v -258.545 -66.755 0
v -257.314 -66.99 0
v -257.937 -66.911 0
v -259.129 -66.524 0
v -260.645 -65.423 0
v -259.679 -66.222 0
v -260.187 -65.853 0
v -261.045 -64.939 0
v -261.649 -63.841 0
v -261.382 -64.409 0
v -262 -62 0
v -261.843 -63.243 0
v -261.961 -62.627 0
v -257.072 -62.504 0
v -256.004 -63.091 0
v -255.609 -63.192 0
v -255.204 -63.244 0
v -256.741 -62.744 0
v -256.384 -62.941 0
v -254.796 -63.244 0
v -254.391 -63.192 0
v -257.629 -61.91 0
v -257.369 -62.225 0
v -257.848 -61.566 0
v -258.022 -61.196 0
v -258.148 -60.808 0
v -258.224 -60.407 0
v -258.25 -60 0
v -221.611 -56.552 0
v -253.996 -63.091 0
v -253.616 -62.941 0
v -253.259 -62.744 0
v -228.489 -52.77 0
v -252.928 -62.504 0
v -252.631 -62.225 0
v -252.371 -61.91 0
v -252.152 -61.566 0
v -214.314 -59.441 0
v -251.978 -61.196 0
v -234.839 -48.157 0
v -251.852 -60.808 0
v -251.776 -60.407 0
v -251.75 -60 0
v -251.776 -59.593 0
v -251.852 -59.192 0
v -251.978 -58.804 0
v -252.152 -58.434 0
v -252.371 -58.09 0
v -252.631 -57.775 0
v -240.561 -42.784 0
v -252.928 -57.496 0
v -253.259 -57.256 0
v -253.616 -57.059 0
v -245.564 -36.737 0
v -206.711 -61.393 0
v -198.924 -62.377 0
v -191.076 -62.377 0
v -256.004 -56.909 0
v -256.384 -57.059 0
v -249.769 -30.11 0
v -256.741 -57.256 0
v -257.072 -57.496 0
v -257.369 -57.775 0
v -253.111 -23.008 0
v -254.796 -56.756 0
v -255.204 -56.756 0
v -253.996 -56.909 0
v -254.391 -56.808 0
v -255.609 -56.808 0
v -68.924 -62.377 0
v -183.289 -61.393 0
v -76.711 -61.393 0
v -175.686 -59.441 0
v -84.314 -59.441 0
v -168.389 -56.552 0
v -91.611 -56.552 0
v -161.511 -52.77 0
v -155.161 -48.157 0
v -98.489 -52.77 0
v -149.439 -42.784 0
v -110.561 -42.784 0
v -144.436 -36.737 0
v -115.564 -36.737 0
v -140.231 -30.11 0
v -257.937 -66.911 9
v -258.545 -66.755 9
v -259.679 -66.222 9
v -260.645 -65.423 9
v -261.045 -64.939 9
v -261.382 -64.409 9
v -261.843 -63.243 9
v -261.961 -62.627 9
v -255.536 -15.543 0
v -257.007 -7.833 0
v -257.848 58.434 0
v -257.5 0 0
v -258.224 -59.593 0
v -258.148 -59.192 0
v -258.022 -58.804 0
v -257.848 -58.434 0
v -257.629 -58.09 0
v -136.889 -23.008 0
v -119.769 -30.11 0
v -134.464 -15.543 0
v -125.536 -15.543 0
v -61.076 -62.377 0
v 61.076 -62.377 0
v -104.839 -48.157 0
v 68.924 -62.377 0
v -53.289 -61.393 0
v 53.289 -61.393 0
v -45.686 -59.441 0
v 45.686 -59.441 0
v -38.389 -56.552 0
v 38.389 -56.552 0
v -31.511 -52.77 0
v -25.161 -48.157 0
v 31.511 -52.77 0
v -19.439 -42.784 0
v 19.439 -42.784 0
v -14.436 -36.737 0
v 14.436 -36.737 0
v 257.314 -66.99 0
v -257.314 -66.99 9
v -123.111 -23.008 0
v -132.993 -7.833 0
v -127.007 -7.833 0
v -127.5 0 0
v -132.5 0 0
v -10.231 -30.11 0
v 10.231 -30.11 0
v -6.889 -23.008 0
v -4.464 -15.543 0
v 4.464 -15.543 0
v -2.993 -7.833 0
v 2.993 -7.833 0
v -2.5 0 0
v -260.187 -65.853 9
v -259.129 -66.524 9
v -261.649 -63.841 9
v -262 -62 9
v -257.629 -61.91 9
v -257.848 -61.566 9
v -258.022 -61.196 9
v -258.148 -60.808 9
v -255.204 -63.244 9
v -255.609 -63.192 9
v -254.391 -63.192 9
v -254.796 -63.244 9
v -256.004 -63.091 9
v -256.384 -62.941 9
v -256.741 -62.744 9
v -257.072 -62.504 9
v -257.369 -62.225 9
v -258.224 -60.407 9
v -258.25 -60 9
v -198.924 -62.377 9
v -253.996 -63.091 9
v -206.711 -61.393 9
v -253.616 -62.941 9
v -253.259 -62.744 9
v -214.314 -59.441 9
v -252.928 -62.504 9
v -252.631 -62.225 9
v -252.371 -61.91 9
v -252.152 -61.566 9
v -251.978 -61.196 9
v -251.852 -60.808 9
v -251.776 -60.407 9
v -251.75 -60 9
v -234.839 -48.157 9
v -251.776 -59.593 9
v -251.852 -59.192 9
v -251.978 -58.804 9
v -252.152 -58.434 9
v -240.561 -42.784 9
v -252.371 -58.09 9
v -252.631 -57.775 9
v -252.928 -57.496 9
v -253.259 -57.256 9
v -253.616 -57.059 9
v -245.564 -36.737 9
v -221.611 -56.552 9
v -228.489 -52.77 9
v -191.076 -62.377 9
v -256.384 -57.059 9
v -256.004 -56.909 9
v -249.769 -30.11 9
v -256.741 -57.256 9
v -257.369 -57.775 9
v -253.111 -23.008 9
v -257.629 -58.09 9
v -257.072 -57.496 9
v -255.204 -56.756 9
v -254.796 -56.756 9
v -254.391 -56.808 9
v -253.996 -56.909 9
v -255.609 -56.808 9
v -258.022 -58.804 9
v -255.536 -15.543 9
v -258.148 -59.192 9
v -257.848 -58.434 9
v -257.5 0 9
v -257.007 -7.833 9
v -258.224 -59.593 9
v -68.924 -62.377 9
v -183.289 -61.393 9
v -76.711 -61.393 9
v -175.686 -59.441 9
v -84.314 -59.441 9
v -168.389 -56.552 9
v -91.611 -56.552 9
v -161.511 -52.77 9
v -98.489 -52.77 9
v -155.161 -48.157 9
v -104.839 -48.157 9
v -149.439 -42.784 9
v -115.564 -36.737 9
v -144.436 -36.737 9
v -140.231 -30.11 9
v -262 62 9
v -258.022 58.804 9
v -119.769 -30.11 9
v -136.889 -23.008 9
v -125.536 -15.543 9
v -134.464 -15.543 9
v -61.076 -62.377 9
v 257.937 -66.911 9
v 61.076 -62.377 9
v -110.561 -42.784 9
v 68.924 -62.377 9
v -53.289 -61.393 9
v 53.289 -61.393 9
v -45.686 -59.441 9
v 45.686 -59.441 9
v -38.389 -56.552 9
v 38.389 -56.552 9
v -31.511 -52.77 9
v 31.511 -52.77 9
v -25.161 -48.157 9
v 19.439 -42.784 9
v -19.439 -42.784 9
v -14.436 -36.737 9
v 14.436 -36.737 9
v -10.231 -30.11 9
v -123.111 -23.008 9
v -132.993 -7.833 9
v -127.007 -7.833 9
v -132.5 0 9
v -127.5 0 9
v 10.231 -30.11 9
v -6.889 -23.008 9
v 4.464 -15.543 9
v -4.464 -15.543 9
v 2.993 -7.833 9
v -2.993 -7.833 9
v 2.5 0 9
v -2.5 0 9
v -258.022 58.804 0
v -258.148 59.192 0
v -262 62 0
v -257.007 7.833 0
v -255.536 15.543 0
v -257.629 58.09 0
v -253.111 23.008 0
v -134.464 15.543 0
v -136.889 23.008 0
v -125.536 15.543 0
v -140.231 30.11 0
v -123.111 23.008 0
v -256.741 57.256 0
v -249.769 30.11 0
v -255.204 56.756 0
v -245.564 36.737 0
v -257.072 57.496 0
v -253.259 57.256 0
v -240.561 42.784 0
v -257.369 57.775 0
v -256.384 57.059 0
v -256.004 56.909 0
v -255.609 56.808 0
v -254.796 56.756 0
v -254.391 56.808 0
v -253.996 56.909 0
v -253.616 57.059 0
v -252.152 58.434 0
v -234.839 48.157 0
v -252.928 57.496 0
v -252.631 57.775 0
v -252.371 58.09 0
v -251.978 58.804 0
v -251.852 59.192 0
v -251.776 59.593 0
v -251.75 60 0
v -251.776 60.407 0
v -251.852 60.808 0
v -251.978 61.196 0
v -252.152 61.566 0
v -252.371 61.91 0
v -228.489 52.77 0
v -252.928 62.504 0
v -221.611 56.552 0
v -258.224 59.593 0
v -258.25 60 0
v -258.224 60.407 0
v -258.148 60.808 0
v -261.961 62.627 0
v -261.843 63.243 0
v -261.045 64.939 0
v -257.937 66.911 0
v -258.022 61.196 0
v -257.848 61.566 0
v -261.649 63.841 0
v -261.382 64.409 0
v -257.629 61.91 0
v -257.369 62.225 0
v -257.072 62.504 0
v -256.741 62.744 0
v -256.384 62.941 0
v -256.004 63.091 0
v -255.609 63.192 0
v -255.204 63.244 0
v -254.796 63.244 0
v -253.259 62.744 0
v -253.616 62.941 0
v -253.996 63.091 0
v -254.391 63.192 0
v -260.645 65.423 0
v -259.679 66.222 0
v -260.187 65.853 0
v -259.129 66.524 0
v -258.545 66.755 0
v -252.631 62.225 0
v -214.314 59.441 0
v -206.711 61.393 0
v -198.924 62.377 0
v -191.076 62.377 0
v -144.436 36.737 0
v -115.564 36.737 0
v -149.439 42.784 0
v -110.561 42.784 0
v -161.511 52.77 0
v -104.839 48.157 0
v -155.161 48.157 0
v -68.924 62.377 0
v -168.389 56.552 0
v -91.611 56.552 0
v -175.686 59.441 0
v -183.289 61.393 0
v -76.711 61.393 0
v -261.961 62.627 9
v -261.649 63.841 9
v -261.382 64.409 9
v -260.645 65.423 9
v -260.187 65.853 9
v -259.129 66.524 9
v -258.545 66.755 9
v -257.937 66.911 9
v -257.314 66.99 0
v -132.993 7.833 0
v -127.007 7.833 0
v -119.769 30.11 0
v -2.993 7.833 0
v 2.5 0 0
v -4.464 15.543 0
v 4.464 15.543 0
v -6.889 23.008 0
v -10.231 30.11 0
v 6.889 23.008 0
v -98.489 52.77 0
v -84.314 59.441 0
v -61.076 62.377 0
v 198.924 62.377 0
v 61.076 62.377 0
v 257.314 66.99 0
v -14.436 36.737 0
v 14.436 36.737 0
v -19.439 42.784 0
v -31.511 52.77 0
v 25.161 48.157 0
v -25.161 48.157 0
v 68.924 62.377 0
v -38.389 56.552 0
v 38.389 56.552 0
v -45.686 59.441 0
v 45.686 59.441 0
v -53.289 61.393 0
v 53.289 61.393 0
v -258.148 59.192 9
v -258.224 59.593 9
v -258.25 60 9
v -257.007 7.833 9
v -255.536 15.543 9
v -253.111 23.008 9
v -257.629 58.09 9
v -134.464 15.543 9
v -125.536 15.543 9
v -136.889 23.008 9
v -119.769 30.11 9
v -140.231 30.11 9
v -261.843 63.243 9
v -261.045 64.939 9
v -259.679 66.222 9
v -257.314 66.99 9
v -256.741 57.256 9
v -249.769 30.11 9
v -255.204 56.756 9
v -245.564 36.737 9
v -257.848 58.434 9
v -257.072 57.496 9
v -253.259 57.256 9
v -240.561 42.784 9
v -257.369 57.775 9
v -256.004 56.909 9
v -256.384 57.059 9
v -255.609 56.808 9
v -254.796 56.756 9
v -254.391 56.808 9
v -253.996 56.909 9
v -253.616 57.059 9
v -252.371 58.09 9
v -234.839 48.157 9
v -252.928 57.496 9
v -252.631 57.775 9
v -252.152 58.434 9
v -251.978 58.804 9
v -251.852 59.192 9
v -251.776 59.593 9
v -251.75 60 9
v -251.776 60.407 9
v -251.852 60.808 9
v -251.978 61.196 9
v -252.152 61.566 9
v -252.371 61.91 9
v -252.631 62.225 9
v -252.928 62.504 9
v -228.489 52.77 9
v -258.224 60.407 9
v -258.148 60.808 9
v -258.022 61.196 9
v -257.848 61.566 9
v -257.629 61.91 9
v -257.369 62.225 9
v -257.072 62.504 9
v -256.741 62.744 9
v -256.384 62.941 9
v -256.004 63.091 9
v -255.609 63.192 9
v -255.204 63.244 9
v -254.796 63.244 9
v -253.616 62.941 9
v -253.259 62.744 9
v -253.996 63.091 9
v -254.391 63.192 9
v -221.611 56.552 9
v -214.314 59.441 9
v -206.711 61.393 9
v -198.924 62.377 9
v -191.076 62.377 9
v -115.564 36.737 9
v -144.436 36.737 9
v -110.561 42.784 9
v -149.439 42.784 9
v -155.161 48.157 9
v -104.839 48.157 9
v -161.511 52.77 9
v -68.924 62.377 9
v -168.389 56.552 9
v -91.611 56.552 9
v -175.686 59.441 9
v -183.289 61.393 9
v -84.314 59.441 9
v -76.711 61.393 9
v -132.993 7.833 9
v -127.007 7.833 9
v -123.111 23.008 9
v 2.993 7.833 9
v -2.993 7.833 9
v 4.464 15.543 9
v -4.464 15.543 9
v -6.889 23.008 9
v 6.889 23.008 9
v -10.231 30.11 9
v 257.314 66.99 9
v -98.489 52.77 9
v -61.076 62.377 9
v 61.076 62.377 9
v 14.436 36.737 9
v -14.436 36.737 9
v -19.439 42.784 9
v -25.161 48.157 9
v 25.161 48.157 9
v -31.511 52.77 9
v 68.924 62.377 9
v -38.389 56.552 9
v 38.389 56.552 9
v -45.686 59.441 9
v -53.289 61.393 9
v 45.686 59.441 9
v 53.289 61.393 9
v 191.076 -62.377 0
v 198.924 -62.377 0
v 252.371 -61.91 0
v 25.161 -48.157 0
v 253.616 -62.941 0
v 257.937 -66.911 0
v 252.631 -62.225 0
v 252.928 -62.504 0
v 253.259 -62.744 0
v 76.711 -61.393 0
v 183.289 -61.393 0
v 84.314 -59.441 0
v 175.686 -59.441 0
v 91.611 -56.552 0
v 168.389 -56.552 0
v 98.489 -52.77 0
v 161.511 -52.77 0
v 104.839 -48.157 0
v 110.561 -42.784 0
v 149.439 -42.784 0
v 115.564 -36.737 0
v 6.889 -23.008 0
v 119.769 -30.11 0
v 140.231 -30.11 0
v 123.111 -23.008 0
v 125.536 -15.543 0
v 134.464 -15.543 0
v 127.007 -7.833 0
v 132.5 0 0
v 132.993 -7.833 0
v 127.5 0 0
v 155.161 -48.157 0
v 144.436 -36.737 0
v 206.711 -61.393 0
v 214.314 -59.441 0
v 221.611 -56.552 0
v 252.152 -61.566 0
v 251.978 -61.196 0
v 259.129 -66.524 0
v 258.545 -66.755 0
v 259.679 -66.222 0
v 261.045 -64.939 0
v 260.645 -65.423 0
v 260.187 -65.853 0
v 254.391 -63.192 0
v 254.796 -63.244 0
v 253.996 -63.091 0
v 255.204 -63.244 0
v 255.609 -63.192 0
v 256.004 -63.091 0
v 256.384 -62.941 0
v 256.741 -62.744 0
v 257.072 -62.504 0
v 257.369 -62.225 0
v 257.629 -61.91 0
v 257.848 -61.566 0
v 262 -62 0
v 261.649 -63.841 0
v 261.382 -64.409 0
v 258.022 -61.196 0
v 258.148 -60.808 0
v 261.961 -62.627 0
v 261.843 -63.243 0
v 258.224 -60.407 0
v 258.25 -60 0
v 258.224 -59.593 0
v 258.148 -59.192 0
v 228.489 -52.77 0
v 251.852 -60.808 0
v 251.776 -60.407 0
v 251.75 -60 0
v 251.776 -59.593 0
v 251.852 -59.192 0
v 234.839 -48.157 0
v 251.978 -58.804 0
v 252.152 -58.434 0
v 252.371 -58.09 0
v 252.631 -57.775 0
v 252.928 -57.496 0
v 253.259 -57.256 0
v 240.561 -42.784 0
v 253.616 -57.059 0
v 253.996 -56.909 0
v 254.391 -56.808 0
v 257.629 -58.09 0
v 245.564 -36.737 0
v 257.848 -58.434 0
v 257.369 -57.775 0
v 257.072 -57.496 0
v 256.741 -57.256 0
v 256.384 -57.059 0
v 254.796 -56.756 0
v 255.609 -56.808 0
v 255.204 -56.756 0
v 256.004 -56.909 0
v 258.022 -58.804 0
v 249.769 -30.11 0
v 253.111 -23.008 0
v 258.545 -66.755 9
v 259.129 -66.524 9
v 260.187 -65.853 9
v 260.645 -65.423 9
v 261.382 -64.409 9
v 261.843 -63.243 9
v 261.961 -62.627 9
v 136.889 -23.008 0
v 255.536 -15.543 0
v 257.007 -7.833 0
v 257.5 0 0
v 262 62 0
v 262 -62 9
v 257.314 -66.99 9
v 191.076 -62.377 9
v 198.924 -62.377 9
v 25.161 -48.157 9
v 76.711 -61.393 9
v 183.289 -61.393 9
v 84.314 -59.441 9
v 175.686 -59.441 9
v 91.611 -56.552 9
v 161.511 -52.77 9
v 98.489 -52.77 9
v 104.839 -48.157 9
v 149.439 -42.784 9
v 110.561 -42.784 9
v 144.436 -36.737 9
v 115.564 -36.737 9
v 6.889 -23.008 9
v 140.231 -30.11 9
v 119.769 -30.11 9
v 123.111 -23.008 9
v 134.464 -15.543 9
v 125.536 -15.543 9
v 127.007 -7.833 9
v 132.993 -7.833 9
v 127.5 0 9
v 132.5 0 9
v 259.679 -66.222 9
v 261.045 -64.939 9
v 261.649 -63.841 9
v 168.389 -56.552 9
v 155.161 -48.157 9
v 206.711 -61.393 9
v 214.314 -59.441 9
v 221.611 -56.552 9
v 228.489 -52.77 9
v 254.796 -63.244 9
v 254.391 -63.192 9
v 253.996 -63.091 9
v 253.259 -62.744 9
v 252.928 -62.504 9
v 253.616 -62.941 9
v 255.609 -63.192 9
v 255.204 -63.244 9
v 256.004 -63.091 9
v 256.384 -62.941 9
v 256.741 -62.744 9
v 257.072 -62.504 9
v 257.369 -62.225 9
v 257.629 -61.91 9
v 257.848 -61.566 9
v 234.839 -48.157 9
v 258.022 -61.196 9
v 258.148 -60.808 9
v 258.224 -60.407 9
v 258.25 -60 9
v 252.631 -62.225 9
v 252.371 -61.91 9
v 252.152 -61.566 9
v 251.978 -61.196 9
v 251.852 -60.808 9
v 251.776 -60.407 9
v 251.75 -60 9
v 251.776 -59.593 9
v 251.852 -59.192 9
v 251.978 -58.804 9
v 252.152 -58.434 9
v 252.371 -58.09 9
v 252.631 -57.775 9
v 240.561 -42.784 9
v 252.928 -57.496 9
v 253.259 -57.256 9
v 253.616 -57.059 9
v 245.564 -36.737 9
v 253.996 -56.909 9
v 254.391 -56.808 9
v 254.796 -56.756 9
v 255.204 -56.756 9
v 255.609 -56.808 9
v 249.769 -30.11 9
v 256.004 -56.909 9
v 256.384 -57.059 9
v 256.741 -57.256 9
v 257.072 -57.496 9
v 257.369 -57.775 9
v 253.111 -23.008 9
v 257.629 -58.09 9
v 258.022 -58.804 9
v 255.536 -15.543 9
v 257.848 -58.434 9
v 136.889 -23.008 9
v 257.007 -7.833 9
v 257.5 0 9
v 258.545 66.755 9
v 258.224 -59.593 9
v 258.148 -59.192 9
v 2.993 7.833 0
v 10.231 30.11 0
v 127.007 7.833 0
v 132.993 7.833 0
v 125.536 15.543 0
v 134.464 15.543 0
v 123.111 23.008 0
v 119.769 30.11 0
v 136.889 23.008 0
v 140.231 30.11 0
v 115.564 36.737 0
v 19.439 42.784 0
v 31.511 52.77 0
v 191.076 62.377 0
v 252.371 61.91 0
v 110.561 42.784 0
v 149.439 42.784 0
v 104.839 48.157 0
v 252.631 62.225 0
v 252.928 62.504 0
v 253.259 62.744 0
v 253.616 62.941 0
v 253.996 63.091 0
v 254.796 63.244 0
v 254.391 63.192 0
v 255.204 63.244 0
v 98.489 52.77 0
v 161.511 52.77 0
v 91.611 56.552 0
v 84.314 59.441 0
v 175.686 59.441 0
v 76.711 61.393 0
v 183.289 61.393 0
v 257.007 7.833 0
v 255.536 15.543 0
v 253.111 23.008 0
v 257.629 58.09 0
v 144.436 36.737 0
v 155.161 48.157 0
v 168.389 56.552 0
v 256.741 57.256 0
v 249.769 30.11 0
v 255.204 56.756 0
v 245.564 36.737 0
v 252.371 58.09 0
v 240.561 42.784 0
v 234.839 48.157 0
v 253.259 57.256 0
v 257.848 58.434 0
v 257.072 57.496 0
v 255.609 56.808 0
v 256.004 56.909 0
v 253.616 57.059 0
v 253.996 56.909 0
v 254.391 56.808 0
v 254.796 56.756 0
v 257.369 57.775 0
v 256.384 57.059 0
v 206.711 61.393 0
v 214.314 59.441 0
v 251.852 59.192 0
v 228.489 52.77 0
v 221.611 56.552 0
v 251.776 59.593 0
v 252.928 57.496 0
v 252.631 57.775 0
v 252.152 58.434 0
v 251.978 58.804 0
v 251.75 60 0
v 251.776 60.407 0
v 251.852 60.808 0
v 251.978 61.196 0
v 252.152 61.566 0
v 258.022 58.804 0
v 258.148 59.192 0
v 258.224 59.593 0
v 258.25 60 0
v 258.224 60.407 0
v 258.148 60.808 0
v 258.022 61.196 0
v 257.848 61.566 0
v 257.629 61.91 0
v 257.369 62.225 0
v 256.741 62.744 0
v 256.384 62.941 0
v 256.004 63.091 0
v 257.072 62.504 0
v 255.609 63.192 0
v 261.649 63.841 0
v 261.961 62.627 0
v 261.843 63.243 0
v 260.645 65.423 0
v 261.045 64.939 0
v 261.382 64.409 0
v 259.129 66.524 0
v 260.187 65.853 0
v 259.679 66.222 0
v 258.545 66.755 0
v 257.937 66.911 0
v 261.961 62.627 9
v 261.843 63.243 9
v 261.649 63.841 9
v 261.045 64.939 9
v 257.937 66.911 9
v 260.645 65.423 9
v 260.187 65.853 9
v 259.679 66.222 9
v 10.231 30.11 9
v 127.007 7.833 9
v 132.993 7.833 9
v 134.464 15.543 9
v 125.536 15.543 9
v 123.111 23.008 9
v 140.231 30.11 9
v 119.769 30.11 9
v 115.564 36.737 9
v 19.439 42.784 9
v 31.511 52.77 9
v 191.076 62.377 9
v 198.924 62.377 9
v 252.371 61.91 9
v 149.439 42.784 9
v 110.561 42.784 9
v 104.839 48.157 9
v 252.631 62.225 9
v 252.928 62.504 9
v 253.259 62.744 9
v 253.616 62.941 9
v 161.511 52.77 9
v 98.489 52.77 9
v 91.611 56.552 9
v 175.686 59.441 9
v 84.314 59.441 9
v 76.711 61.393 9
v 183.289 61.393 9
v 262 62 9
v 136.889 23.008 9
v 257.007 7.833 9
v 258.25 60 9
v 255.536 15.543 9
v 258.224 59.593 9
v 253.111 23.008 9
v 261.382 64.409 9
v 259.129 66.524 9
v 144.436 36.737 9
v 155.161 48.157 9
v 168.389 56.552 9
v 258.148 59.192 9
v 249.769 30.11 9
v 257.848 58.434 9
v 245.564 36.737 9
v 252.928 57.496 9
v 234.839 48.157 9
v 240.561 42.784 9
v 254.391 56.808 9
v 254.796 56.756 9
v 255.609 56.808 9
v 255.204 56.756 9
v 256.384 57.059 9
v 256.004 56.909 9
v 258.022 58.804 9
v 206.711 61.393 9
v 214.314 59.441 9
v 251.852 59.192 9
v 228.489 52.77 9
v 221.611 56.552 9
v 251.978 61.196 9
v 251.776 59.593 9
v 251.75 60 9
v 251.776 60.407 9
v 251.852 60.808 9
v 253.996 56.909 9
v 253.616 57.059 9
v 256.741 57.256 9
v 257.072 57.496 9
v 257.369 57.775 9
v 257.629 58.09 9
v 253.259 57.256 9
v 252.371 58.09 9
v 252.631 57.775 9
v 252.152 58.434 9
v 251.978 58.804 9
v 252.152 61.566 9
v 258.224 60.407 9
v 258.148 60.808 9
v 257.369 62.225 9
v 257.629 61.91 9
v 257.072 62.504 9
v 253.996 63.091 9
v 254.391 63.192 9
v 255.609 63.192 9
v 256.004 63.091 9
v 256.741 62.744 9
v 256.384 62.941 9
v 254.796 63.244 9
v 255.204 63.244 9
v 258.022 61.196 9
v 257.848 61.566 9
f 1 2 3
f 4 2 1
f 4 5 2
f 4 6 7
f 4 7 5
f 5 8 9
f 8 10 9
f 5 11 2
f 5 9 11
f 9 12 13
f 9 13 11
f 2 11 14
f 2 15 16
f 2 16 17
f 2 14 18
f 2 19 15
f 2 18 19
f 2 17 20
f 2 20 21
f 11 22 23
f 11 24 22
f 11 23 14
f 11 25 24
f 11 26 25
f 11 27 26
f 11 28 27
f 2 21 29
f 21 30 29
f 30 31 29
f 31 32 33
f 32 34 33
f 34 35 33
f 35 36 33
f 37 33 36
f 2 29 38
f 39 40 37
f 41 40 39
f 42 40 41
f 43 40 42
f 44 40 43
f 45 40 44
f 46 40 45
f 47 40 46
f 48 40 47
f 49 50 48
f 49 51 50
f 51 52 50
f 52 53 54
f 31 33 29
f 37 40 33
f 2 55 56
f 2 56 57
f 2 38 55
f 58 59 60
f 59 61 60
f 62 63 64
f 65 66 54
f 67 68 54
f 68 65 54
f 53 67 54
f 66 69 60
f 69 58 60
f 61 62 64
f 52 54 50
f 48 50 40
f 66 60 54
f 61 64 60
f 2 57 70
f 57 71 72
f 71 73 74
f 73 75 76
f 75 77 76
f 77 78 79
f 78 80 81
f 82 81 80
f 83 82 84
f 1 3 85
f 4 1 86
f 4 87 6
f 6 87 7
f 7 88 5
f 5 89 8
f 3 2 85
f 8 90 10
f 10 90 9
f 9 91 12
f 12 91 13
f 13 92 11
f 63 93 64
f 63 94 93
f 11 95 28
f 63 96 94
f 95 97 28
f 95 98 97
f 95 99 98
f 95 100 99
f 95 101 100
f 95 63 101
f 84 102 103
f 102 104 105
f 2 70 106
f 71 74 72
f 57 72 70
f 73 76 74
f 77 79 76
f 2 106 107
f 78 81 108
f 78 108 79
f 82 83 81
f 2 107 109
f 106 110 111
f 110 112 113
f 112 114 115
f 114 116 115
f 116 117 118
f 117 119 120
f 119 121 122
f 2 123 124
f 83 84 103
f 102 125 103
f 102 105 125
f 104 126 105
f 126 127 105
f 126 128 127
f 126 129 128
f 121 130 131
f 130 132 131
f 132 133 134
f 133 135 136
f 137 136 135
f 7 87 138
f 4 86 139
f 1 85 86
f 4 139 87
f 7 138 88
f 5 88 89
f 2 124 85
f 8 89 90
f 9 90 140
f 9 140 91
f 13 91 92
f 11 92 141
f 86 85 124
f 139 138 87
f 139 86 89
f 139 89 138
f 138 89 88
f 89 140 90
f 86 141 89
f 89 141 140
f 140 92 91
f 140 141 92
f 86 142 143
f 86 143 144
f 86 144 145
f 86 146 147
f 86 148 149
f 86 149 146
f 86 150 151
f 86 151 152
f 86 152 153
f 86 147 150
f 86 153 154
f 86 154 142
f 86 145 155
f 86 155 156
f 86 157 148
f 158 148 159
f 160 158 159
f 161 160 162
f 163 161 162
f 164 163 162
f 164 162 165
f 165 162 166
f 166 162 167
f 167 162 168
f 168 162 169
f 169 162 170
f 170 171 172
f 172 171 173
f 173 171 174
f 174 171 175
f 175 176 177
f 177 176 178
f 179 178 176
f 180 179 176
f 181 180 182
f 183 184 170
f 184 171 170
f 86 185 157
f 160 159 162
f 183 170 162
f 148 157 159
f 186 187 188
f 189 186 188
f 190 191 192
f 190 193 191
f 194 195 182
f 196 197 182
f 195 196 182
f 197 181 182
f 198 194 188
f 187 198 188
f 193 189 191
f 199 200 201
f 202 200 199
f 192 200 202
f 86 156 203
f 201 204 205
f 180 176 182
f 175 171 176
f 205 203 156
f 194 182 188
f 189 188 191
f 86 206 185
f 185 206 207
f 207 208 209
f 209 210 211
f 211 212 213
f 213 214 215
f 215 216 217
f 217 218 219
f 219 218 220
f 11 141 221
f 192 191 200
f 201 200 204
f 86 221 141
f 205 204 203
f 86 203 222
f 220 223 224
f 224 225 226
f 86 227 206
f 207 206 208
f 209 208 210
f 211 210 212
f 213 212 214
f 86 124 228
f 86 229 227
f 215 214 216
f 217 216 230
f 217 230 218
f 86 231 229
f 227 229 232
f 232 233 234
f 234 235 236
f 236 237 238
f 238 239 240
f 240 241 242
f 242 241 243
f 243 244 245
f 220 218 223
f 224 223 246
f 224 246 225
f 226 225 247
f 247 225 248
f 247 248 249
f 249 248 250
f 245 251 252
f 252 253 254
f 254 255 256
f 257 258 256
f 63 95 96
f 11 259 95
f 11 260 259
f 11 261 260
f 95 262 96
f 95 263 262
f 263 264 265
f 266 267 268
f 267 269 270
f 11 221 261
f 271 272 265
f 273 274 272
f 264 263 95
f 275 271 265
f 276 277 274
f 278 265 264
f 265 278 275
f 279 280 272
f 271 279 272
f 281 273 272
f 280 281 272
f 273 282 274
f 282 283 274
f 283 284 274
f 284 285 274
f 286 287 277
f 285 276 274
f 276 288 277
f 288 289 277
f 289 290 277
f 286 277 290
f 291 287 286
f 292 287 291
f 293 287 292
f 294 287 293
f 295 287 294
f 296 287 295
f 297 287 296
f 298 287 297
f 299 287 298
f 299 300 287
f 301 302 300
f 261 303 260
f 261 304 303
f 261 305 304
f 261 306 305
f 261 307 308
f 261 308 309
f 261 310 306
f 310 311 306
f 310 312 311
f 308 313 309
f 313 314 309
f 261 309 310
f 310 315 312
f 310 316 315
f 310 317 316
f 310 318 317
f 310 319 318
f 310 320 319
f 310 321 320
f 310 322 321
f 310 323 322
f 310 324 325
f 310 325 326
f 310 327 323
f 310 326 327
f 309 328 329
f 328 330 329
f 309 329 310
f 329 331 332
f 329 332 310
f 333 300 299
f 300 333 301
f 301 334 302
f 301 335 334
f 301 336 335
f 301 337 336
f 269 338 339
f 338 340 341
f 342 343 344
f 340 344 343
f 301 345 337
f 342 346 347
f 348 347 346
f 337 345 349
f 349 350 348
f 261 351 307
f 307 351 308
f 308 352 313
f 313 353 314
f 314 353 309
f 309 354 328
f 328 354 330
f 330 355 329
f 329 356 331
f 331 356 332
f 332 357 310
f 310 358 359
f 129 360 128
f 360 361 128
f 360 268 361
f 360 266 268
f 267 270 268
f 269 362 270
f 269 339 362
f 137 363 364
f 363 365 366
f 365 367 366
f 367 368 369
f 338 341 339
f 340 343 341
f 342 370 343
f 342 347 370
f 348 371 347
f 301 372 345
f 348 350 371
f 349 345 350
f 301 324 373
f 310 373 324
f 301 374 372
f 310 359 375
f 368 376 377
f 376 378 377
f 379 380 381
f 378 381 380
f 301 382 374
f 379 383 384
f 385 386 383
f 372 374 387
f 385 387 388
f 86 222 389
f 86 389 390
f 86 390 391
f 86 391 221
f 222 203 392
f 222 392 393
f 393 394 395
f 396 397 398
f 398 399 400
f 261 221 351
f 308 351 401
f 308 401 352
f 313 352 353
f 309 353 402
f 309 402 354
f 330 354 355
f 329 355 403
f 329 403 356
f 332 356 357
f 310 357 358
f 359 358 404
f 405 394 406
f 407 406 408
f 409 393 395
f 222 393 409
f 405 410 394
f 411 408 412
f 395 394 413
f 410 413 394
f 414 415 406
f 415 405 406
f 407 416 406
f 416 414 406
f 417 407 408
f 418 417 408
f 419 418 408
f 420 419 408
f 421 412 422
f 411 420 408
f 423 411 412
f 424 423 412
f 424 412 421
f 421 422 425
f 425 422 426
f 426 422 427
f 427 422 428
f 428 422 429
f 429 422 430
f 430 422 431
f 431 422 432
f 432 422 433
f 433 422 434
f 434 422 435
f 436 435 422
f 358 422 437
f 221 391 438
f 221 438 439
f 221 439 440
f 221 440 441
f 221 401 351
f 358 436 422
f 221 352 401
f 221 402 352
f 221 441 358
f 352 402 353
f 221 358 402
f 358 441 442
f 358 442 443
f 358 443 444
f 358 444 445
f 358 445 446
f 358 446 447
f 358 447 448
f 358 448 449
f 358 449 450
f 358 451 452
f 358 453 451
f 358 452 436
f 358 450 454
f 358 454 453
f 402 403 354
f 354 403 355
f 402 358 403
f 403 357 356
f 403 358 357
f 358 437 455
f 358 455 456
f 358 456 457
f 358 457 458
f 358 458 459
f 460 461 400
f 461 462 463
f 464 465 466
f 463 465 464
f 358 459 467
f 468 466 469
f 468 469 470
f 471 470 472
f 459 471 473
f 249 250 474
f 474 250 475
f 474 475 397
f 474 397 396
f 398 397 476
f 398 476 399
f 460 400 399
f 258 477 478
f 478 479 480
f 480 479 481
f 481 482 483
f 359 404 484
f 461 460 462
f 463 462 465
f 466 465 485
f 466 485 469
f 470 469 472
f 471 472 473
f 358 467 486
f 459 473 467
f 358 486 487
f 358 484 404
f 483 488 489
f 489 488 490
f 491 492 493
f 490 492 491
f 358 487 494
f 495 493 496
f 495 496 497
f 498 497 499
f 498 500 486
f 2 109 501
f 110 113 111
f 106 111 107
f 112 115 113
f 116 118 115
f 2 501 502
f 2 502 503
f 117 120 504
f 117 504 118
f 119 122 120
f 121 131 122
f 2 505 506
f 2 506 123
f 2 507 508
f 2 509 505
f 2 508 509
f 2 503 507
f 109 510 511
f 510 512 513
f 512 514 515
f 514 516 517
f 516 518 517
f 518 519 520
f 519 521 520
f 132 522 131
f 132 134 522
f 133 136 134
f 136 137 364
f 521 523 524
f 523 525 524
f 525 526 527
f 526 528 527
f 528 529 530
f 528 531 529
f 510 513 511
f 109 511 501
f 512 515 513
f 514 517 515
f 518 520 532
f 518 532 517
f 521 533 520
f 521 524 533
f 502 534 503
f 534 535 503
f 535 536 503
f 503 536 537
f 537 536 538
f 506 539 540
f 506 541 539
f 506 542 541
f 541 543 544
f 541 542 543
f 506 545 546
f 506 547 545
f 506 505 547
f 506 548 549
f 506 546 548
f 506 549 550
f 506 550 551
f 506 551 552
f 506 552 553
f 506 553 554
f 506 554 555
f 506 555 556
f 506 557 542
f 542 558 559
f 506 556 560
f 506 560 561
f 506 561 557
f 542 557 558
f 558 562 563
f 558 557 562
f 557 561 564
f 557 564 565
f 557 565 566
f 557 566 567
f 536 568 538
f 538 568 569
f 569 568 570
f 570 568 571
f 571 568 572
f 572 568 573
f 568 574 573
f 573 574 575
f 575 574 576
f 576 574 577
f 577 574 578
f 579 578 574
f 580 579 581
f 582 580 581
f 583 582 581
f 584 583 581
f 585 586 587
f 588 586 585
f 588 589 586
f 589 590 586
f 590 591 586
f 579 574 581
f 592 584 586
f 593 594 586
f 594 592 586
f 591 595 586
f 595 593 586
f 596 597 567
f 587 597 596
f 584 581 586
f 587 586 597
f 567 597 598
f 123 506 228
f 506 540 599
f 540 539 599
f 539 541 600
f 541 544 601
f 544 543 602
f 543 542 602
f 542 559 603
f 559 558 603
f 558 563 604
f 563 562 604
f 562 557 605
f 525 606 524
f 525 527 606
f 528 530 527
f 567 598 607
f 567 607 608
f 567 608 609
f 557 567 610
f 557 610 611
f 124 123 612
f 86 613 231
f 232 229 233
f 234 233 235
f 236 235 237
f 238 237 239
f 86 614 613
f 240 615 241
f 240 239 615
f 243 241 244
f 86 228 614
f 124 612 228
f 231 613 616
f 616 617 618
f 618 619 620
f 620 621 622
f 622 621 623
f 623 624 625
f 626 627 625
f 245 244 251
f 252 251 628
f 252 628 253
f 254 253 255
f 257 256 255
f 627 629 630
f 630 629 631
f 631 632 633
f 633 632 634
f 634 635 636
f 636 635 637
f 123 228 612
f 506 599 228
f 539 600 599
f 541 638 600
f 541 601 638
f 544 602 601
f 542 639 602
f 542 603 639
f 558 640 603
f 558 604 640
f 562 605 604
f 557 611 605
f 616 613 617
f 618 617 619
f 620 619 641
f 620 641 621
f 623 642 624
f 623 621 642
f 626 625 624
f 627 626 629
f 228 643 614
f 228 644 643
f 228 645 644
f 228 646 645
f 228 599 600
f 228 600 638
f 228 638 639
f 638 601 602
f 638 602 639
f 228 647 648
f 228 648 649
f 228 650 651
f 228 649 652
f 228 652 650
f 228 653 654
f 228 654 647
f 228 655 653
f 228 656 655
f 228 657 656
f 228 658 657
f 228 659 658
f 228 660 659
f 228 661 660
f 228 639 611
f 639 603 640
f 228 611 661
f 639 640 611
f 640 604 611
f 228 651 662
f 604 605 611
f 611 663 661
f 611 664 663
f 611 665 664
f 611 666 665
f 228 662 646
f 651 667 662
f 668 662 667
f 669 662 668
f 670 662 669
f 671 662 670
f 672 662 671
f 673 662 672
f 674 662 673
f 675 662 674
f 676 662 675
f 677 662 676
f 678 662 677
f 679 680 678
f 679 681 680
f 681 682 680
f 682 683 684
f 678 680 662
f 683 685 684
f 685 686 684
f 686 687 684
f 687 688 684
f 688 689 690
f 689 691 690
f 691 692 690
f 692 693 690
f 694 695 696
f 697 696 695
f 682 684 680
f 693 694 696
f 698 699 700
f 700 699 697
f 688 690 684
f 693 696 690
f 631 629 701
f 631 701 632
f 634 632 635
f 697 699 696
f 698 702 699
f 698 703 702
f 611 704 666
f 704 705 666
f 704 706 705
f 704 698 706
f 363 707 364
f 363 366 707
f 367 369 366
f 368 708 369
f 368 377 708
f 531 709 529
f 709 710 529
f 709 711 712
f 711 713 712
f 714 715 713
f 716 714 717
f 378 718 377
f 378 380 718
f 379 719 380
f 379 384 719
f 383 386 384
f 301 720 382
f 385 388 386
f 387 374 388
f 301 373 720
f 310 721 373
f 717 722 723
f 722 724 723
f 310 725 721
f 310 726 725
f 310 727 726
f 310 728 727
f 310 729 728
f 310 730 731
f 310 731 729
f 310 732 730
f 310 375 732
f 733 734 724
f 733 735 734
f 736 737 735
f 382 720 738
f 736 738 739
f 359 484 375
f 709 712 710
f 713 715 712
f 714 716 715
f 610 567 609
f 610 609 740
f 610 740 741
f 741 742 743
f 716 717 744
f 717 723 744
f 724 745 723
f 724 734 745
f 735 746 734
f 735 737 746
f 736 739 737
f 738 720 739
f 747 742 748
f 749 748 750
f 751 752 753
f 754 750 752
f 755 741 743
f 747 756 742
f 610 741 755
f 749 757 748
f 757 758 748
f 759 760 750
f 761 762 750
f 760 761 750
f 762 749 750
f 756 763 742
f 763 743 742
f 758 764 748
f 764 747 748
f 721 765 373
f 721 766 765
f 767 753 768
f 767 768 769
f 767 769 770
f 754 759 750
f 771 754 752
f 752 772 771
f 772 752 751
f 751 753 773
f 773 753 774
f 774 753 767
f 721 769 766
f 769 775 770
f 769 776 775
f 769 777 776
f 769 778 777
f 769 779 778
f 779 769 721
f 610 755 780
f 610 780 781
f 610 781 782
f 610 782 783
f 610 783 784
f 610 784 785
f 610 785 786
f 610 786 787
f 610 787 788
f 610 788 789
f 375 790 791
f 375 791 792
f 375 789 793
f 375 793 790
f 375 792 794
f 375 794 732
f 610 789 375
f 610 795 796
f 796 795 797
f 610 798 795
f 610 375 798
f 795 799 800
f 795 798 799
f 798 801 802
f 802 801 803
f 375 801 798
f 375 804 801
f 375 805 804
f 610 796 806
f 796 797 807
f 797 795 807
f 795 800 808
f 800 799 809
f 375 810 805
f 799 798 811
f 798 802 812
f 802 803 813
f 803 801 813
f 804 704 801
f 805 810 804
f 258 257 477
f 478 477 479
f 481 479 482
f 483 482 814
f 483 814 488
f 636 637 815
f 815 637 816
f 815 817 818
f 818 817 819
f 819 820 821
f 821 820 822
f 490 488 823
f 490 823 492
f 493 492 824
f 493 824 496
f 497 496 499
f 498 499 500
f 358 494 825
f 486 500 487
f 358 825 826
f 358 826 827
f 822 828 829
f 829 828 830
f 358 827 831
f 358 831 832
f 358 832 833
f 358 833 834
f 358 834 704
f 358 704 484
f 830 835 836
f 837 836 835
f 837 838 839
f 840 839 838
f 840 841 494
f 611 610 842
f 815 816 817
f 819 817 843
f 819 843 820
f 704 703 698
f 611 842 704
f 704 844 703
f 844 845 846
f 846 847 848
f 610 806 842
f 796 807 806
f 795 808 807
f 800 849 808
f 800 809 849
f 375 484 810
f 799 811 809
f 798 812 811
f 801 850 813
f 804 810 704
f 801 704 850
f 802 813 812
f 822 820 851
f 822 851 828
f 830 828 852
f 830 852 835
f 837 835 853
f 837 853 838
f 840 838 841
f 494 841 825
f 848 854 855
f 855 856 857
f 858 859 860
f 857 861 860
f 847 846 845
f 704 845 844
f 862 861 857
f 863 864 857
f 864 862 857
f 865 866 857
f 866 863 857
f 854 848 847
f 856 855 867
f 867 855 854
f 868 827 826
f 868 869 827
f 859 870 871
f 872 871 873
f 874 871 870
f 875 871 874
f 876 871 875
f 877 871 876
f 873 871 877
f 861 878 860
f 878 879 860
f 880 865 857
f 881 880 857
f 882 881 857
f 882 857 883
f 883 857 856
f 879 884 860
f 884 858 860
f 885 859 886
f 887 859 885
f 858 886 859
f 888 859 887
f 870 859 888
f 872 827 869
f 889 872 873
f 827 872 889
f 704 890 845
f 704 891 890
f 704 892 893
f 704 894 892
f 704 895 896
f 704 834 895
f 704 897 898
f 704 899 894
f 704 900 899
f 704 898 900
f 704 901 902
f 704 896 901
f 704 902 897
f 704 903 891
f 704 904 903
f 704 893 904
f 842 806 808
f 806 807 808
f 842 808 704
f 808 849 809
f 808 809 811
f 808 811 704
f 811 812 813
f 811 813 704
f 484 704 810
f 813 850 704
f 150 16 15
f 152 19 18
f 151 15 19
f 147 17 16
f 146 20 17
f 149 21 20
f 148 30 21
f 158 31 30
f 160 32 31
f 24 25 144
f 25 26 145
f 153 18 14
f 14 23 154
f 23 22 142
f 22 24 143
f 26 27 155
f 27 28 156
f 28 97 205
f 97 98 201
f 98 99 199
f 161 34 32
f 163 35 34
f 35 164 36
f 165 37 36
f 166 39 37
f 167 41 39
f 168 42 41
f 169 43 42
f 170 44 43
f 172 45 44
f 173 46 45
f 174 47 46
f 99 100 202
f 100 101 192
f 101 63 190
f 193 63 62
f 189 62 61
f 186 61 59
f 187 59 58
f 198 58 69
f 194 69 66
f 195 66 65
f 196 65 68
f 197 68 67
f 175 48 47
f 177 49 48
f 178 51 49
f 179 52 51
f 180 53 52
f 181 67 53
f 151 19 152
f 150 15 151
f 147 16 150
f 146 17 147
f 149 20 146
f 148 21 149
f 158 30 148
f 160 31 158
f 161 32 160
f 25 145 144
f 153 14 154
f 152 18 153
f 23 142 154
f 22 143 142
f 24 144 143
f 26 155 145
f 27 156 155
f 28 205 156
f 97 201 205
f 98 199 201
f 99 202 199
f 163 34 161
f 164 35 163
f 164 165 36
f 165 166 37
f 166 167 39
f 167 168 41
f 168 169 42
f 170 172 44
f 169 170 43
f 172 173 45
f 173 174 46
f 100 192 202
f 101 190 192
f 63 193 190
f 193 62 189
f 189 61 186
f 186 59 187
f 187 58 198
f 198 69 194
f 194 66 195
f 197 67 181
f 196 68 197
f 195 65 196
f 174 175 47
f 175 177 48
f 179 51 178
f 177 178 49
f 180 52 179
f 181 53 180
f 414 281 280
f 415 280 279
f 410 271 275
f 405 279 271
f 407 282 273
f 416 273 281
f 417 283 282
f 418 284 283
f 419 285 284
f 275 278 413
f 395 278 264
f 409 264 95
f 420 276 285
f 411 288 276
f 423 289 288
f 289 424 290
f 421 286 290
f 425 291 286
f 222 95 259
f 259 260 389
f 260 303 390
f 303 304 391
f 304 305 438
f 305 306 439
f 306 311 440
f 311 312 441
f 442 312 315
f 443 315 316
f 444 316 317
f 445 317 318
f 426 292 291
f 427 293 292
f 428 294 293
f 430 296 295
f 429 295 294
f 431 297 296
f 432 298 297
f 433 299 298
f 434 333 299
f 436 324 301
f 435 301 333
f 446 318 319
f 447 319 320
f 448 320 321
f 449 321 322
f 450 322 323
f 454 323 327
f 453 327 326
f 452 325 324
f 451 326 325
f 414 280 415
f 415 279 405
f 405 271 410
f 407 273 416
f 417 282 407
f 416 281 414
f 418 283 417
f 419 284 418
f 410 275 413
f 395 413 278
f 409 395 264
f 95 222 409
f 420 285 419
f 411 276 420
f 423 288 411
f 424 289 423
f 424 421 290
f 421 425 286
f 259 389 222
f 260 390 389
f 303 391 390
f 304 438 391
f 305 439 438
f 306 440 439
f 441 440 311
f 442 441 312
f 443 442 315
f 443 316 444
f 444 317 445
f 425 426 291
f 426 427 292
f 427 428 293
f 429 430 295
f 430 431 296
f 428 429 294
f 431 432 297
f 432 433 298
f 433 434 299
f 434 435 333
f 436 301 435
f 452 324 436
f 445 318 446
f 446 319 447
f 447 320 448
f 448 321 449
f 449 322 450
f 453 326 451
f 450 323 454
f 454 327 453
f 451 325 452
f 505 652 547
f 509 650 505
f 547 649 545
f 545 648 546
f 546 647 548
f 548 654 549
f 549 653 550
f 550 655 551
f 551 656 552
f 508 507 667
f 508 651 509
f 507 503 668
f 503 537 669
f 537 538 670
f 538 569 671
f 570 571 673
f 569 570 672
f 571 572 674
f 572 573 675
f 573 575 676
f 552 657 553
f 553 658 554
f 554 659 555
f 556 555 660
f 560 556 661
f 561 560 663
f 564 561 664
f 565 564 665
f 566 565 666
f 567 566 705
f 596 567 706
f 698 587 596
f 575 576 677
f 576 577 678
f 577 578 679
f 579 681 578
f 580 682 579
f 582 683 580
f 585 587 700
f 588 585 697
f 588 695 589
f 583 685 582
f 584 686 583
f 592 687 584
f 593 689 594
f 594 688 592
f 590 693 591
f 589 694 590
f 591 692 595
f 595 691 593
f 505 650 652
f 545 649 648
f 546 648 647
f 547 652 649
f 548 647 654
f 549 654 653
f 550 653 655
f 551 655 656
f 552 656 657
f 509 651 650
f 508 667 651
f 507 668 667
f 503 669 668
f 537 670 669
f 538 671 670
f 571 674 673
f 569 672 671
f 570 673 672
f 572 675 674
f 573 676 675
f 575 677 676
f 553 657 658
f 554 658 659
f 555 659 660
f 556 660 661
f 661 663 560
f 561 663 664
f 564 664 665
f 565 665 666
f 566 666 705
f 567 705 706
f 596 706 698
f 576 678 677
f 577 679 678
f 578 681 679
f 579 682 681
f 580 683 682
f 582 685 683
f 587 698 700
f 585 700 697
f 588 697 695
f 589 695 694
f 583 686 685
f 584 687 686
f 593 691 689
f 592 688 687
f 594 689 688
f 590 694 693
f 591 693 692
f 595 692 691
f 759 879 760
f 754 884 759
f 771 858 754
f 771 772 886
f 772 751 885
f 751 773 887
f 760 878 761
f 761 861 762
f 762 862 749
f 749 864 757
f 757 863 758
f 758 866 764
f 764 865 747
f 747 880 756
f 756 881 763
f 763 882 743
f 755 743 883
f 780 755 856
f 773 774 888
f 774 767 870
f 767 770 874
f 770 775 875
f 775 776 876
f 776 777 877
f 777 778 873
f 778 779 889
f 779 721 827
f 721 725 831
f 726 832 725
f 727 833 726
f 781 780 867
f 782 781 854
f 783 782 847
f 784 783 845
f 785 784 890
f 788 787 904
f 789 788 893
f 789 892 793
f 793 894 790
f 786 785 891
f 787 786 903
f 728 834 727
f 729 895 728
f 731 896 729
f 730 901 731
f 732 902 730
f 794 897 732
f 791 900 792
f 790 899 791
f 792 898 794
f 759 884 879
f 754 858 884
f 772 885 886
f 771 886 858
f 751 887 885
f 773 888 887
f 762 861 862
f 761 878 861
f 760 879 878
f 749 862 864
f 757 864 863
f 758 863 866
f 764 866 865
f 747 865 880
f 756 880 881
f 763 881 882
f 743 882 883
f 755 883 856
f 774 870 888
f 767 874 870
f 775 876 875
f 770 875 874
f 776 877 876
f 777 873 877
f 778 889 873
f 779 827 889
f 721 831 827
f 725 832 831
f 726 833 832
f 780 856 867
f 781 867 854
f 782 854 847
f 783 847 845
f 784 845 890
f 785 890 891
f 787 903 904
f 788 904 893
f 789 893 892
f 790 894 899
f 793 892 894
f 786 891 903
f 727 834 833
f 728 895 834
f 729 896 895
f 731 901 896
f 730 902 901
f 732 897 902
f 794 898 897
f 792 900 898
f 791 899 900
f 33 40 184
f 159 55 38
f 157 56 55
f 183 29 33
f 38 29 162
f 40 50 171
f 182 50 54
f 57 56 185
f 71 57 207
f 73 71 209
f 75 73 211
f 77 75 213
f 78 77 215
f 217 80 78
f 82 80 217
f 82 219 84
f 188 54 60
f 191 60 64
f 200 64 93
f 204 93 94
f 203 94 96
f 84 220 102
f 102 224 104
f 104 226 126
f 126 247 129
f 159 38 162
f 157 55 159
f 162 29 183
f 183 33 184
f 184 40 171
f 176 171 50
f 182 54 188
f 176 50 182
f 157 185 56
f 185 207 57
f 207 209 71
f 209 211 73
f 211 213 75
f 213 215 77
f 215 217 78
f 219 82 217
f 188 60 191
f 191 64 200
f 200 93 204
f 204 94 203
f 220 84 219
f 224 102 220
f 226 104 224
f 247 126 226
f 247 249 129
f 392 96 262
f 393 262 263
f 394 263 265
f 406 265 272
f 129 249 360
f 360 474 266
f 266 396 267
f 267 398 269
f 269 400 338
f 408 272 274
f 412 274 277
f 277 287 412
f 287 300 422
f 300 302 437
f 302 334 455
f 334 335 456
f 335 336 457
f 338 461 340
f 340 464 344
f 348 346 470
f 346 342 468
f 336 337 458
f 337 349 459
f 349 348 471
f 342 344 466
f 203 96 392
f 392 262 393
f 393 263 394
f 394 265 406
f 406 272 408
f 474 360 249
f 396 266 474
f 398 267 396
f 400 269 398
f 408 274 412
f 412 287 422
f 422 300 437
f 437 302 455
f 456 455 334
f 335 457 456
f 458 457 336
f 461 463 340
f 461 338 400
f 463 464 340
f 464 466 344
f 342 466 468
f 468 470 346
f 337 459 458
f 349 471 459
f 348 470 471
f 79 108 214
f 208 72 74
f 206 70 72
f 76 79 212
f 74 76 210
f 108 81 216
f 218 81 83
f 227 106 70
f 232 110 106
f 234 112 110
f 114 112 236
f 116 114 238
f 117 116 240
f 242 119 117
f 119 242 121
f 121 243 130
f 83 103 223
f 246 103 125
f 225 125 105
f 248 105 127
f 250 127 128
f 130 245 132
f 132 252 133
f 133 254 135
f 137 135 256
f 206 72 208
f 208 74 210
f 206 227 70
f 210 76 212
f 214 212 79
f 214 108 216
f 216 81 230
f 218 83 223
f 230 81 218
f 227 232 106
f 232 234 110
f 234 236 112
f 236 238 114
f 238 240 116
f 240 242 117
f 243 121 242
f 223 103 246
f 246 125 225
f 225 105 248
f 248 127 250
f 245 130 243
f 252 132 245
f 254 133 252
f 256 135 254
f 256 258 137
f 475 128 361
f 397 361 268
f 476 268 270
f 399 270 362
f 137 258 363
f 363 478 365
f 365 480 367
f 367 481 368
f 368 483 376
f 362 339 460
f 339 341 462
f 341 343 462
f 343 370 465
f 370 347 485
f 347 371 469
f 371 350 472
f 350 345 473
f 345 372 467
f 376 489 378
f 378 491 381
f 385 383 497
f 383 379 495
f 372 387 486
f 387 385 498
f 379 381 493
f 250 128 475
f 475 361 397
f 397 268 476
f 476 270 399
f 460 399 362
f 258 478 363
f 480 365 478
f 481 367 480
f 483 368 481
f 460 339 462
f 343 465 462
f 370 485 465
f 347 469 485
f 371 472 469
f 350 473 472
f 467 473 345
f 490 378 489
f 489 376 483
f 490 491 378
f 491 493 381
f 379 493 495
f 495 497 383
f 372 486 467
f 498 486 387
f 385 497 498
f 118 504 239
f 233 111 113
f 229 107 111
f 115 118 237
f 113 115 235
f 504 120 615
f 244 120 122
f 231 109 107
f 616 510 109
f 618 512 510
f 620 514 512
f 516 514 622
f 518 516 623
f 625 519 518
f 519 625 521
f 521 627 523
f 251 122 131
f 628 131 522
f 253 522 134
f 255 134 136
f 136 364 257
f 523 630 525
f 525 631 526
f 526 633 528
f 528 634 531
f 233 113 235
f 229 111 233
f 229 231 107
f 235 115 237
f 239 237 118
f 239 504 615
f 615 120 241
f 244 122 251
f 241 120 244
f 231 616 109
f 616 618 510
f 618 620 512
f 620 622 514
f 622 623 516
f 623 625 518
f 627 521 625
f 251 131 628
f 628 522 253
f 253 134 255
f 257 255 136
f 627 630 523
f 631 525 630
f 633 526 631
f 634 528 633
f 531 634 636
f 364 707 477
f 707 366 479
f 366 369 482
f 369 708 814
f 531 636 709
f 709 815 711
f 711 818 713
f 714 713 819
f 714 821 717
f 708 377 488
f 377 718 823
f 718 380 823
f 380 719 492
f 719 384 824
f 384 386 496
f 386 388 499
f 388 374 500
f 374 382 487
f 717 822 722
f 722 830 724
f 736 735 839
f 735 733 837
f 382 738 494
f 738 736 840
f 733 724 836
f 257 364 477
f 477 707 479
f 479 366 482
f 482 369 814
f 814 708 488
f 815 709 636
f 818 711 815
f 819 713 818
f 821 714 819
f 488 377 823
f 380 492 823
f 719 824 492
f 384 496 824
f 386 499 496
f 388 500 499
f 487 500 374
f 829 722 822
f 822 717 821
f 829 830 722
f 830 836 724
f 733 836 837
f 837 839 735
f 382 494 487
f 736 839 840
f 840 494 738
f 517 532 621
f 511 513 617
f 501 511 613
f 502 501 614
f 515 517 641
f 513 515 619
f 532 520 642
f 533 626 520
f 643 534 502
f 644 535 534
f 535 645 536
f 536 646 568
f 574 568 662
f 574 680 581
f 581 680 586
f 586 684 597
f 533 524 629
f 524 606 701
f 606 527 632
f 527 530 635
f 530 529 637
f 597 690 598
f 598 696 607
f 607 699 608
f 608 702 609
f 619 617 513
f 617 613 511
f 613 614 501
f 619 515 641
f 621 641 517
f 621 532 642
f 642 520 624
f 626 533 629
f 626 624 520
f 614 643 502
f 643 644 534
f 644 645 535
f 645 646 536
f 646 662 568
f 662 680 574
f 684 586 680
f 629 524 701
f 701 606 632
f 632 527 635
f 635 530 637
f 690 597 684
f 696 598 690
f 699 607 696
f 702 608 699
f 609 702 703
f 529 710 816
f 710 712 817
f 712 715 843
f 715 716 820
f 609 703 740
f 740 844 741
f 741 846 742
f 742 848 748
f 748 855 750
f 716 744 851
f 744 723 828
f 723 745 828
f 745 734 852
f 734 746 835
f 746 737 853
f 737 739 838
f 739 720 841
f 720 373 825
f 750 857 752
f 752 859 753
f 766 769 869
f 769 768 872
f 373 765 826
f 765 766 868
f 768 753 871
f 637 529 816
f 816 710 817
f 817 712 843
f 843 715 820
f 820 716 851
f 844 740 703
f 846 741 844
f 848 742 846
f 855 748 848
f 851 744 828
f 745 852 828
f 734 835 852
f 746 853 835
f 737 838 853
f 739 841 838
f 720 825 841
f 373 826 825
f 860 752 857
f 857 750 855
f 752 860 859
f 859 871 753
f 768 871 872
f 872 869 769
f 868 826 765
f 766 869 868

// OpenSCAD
$fn = 50;

difference() {
	union() {
		hull() {
			translate(v = [-257.0, 62.0, 0]) {
				cylinder(h = 9, r = 5);
			}
			translate(v = [257.0, 62.0, 0]) {
				cylinder(h = 9, r = 5);
			}
			translate(v = [-257.0, -62.0, 0]) {
				cylinder(h = 9, r = 5);
			}
			translate(v = [257.0, -62.0, 0]) {
				cylinder(h = 9, r = 5);
			}
		}
	}
	union() {
		translate(v = [-255.0, -60.0, -100.0]) {
			cylinder(h = 200, r = 3.25);
		}
		translate(v = [-255.0, 60.0, -100.0]) {
			cylinder(h = 200, r = 3.25);
		}
		translate(v = [255.0, -60.0, -100.0]) {
			cylinder(h = 200, r = 3.25);
		}
		translate(v = [255.0, 60.0, -100.0]) {
			cylinder(h = 200, r = 3.25);
		}
		translate(v = [-255.0, -60.0, -100.0]) {
			cylinder(h = 200, r = 1.8);
		}
		translate(v = [-255.0, 60.0, -100.0]) {
			cylinder(h = 200, r = 1.8);
		}
		translate(v = [255.0, -60.0, -100.0]) {
			cylinder(h = 200, r = 1.8);
		}
		translate(v = [255.0, 60.0, -100.0]) {
			cylinder(h = 200, r = 1.8);
		}
		translate(v = [-195.0, 0, 0.0]) {
			cylinder(h = 9, r = 62.5);
		}
		translate(v = [-65.0, 0, 0.0]) {
			cylinder(h = 9, r = 62.5);
		}
		translate(v = [65.0, 0, 0.0]) {
			cylinder(h = 9, r = 62.5);
		}
		translate(v = [195.0, 0, 0.0]) {
			cylinder(h = 9, r = 62.5);
		}
	}
}
